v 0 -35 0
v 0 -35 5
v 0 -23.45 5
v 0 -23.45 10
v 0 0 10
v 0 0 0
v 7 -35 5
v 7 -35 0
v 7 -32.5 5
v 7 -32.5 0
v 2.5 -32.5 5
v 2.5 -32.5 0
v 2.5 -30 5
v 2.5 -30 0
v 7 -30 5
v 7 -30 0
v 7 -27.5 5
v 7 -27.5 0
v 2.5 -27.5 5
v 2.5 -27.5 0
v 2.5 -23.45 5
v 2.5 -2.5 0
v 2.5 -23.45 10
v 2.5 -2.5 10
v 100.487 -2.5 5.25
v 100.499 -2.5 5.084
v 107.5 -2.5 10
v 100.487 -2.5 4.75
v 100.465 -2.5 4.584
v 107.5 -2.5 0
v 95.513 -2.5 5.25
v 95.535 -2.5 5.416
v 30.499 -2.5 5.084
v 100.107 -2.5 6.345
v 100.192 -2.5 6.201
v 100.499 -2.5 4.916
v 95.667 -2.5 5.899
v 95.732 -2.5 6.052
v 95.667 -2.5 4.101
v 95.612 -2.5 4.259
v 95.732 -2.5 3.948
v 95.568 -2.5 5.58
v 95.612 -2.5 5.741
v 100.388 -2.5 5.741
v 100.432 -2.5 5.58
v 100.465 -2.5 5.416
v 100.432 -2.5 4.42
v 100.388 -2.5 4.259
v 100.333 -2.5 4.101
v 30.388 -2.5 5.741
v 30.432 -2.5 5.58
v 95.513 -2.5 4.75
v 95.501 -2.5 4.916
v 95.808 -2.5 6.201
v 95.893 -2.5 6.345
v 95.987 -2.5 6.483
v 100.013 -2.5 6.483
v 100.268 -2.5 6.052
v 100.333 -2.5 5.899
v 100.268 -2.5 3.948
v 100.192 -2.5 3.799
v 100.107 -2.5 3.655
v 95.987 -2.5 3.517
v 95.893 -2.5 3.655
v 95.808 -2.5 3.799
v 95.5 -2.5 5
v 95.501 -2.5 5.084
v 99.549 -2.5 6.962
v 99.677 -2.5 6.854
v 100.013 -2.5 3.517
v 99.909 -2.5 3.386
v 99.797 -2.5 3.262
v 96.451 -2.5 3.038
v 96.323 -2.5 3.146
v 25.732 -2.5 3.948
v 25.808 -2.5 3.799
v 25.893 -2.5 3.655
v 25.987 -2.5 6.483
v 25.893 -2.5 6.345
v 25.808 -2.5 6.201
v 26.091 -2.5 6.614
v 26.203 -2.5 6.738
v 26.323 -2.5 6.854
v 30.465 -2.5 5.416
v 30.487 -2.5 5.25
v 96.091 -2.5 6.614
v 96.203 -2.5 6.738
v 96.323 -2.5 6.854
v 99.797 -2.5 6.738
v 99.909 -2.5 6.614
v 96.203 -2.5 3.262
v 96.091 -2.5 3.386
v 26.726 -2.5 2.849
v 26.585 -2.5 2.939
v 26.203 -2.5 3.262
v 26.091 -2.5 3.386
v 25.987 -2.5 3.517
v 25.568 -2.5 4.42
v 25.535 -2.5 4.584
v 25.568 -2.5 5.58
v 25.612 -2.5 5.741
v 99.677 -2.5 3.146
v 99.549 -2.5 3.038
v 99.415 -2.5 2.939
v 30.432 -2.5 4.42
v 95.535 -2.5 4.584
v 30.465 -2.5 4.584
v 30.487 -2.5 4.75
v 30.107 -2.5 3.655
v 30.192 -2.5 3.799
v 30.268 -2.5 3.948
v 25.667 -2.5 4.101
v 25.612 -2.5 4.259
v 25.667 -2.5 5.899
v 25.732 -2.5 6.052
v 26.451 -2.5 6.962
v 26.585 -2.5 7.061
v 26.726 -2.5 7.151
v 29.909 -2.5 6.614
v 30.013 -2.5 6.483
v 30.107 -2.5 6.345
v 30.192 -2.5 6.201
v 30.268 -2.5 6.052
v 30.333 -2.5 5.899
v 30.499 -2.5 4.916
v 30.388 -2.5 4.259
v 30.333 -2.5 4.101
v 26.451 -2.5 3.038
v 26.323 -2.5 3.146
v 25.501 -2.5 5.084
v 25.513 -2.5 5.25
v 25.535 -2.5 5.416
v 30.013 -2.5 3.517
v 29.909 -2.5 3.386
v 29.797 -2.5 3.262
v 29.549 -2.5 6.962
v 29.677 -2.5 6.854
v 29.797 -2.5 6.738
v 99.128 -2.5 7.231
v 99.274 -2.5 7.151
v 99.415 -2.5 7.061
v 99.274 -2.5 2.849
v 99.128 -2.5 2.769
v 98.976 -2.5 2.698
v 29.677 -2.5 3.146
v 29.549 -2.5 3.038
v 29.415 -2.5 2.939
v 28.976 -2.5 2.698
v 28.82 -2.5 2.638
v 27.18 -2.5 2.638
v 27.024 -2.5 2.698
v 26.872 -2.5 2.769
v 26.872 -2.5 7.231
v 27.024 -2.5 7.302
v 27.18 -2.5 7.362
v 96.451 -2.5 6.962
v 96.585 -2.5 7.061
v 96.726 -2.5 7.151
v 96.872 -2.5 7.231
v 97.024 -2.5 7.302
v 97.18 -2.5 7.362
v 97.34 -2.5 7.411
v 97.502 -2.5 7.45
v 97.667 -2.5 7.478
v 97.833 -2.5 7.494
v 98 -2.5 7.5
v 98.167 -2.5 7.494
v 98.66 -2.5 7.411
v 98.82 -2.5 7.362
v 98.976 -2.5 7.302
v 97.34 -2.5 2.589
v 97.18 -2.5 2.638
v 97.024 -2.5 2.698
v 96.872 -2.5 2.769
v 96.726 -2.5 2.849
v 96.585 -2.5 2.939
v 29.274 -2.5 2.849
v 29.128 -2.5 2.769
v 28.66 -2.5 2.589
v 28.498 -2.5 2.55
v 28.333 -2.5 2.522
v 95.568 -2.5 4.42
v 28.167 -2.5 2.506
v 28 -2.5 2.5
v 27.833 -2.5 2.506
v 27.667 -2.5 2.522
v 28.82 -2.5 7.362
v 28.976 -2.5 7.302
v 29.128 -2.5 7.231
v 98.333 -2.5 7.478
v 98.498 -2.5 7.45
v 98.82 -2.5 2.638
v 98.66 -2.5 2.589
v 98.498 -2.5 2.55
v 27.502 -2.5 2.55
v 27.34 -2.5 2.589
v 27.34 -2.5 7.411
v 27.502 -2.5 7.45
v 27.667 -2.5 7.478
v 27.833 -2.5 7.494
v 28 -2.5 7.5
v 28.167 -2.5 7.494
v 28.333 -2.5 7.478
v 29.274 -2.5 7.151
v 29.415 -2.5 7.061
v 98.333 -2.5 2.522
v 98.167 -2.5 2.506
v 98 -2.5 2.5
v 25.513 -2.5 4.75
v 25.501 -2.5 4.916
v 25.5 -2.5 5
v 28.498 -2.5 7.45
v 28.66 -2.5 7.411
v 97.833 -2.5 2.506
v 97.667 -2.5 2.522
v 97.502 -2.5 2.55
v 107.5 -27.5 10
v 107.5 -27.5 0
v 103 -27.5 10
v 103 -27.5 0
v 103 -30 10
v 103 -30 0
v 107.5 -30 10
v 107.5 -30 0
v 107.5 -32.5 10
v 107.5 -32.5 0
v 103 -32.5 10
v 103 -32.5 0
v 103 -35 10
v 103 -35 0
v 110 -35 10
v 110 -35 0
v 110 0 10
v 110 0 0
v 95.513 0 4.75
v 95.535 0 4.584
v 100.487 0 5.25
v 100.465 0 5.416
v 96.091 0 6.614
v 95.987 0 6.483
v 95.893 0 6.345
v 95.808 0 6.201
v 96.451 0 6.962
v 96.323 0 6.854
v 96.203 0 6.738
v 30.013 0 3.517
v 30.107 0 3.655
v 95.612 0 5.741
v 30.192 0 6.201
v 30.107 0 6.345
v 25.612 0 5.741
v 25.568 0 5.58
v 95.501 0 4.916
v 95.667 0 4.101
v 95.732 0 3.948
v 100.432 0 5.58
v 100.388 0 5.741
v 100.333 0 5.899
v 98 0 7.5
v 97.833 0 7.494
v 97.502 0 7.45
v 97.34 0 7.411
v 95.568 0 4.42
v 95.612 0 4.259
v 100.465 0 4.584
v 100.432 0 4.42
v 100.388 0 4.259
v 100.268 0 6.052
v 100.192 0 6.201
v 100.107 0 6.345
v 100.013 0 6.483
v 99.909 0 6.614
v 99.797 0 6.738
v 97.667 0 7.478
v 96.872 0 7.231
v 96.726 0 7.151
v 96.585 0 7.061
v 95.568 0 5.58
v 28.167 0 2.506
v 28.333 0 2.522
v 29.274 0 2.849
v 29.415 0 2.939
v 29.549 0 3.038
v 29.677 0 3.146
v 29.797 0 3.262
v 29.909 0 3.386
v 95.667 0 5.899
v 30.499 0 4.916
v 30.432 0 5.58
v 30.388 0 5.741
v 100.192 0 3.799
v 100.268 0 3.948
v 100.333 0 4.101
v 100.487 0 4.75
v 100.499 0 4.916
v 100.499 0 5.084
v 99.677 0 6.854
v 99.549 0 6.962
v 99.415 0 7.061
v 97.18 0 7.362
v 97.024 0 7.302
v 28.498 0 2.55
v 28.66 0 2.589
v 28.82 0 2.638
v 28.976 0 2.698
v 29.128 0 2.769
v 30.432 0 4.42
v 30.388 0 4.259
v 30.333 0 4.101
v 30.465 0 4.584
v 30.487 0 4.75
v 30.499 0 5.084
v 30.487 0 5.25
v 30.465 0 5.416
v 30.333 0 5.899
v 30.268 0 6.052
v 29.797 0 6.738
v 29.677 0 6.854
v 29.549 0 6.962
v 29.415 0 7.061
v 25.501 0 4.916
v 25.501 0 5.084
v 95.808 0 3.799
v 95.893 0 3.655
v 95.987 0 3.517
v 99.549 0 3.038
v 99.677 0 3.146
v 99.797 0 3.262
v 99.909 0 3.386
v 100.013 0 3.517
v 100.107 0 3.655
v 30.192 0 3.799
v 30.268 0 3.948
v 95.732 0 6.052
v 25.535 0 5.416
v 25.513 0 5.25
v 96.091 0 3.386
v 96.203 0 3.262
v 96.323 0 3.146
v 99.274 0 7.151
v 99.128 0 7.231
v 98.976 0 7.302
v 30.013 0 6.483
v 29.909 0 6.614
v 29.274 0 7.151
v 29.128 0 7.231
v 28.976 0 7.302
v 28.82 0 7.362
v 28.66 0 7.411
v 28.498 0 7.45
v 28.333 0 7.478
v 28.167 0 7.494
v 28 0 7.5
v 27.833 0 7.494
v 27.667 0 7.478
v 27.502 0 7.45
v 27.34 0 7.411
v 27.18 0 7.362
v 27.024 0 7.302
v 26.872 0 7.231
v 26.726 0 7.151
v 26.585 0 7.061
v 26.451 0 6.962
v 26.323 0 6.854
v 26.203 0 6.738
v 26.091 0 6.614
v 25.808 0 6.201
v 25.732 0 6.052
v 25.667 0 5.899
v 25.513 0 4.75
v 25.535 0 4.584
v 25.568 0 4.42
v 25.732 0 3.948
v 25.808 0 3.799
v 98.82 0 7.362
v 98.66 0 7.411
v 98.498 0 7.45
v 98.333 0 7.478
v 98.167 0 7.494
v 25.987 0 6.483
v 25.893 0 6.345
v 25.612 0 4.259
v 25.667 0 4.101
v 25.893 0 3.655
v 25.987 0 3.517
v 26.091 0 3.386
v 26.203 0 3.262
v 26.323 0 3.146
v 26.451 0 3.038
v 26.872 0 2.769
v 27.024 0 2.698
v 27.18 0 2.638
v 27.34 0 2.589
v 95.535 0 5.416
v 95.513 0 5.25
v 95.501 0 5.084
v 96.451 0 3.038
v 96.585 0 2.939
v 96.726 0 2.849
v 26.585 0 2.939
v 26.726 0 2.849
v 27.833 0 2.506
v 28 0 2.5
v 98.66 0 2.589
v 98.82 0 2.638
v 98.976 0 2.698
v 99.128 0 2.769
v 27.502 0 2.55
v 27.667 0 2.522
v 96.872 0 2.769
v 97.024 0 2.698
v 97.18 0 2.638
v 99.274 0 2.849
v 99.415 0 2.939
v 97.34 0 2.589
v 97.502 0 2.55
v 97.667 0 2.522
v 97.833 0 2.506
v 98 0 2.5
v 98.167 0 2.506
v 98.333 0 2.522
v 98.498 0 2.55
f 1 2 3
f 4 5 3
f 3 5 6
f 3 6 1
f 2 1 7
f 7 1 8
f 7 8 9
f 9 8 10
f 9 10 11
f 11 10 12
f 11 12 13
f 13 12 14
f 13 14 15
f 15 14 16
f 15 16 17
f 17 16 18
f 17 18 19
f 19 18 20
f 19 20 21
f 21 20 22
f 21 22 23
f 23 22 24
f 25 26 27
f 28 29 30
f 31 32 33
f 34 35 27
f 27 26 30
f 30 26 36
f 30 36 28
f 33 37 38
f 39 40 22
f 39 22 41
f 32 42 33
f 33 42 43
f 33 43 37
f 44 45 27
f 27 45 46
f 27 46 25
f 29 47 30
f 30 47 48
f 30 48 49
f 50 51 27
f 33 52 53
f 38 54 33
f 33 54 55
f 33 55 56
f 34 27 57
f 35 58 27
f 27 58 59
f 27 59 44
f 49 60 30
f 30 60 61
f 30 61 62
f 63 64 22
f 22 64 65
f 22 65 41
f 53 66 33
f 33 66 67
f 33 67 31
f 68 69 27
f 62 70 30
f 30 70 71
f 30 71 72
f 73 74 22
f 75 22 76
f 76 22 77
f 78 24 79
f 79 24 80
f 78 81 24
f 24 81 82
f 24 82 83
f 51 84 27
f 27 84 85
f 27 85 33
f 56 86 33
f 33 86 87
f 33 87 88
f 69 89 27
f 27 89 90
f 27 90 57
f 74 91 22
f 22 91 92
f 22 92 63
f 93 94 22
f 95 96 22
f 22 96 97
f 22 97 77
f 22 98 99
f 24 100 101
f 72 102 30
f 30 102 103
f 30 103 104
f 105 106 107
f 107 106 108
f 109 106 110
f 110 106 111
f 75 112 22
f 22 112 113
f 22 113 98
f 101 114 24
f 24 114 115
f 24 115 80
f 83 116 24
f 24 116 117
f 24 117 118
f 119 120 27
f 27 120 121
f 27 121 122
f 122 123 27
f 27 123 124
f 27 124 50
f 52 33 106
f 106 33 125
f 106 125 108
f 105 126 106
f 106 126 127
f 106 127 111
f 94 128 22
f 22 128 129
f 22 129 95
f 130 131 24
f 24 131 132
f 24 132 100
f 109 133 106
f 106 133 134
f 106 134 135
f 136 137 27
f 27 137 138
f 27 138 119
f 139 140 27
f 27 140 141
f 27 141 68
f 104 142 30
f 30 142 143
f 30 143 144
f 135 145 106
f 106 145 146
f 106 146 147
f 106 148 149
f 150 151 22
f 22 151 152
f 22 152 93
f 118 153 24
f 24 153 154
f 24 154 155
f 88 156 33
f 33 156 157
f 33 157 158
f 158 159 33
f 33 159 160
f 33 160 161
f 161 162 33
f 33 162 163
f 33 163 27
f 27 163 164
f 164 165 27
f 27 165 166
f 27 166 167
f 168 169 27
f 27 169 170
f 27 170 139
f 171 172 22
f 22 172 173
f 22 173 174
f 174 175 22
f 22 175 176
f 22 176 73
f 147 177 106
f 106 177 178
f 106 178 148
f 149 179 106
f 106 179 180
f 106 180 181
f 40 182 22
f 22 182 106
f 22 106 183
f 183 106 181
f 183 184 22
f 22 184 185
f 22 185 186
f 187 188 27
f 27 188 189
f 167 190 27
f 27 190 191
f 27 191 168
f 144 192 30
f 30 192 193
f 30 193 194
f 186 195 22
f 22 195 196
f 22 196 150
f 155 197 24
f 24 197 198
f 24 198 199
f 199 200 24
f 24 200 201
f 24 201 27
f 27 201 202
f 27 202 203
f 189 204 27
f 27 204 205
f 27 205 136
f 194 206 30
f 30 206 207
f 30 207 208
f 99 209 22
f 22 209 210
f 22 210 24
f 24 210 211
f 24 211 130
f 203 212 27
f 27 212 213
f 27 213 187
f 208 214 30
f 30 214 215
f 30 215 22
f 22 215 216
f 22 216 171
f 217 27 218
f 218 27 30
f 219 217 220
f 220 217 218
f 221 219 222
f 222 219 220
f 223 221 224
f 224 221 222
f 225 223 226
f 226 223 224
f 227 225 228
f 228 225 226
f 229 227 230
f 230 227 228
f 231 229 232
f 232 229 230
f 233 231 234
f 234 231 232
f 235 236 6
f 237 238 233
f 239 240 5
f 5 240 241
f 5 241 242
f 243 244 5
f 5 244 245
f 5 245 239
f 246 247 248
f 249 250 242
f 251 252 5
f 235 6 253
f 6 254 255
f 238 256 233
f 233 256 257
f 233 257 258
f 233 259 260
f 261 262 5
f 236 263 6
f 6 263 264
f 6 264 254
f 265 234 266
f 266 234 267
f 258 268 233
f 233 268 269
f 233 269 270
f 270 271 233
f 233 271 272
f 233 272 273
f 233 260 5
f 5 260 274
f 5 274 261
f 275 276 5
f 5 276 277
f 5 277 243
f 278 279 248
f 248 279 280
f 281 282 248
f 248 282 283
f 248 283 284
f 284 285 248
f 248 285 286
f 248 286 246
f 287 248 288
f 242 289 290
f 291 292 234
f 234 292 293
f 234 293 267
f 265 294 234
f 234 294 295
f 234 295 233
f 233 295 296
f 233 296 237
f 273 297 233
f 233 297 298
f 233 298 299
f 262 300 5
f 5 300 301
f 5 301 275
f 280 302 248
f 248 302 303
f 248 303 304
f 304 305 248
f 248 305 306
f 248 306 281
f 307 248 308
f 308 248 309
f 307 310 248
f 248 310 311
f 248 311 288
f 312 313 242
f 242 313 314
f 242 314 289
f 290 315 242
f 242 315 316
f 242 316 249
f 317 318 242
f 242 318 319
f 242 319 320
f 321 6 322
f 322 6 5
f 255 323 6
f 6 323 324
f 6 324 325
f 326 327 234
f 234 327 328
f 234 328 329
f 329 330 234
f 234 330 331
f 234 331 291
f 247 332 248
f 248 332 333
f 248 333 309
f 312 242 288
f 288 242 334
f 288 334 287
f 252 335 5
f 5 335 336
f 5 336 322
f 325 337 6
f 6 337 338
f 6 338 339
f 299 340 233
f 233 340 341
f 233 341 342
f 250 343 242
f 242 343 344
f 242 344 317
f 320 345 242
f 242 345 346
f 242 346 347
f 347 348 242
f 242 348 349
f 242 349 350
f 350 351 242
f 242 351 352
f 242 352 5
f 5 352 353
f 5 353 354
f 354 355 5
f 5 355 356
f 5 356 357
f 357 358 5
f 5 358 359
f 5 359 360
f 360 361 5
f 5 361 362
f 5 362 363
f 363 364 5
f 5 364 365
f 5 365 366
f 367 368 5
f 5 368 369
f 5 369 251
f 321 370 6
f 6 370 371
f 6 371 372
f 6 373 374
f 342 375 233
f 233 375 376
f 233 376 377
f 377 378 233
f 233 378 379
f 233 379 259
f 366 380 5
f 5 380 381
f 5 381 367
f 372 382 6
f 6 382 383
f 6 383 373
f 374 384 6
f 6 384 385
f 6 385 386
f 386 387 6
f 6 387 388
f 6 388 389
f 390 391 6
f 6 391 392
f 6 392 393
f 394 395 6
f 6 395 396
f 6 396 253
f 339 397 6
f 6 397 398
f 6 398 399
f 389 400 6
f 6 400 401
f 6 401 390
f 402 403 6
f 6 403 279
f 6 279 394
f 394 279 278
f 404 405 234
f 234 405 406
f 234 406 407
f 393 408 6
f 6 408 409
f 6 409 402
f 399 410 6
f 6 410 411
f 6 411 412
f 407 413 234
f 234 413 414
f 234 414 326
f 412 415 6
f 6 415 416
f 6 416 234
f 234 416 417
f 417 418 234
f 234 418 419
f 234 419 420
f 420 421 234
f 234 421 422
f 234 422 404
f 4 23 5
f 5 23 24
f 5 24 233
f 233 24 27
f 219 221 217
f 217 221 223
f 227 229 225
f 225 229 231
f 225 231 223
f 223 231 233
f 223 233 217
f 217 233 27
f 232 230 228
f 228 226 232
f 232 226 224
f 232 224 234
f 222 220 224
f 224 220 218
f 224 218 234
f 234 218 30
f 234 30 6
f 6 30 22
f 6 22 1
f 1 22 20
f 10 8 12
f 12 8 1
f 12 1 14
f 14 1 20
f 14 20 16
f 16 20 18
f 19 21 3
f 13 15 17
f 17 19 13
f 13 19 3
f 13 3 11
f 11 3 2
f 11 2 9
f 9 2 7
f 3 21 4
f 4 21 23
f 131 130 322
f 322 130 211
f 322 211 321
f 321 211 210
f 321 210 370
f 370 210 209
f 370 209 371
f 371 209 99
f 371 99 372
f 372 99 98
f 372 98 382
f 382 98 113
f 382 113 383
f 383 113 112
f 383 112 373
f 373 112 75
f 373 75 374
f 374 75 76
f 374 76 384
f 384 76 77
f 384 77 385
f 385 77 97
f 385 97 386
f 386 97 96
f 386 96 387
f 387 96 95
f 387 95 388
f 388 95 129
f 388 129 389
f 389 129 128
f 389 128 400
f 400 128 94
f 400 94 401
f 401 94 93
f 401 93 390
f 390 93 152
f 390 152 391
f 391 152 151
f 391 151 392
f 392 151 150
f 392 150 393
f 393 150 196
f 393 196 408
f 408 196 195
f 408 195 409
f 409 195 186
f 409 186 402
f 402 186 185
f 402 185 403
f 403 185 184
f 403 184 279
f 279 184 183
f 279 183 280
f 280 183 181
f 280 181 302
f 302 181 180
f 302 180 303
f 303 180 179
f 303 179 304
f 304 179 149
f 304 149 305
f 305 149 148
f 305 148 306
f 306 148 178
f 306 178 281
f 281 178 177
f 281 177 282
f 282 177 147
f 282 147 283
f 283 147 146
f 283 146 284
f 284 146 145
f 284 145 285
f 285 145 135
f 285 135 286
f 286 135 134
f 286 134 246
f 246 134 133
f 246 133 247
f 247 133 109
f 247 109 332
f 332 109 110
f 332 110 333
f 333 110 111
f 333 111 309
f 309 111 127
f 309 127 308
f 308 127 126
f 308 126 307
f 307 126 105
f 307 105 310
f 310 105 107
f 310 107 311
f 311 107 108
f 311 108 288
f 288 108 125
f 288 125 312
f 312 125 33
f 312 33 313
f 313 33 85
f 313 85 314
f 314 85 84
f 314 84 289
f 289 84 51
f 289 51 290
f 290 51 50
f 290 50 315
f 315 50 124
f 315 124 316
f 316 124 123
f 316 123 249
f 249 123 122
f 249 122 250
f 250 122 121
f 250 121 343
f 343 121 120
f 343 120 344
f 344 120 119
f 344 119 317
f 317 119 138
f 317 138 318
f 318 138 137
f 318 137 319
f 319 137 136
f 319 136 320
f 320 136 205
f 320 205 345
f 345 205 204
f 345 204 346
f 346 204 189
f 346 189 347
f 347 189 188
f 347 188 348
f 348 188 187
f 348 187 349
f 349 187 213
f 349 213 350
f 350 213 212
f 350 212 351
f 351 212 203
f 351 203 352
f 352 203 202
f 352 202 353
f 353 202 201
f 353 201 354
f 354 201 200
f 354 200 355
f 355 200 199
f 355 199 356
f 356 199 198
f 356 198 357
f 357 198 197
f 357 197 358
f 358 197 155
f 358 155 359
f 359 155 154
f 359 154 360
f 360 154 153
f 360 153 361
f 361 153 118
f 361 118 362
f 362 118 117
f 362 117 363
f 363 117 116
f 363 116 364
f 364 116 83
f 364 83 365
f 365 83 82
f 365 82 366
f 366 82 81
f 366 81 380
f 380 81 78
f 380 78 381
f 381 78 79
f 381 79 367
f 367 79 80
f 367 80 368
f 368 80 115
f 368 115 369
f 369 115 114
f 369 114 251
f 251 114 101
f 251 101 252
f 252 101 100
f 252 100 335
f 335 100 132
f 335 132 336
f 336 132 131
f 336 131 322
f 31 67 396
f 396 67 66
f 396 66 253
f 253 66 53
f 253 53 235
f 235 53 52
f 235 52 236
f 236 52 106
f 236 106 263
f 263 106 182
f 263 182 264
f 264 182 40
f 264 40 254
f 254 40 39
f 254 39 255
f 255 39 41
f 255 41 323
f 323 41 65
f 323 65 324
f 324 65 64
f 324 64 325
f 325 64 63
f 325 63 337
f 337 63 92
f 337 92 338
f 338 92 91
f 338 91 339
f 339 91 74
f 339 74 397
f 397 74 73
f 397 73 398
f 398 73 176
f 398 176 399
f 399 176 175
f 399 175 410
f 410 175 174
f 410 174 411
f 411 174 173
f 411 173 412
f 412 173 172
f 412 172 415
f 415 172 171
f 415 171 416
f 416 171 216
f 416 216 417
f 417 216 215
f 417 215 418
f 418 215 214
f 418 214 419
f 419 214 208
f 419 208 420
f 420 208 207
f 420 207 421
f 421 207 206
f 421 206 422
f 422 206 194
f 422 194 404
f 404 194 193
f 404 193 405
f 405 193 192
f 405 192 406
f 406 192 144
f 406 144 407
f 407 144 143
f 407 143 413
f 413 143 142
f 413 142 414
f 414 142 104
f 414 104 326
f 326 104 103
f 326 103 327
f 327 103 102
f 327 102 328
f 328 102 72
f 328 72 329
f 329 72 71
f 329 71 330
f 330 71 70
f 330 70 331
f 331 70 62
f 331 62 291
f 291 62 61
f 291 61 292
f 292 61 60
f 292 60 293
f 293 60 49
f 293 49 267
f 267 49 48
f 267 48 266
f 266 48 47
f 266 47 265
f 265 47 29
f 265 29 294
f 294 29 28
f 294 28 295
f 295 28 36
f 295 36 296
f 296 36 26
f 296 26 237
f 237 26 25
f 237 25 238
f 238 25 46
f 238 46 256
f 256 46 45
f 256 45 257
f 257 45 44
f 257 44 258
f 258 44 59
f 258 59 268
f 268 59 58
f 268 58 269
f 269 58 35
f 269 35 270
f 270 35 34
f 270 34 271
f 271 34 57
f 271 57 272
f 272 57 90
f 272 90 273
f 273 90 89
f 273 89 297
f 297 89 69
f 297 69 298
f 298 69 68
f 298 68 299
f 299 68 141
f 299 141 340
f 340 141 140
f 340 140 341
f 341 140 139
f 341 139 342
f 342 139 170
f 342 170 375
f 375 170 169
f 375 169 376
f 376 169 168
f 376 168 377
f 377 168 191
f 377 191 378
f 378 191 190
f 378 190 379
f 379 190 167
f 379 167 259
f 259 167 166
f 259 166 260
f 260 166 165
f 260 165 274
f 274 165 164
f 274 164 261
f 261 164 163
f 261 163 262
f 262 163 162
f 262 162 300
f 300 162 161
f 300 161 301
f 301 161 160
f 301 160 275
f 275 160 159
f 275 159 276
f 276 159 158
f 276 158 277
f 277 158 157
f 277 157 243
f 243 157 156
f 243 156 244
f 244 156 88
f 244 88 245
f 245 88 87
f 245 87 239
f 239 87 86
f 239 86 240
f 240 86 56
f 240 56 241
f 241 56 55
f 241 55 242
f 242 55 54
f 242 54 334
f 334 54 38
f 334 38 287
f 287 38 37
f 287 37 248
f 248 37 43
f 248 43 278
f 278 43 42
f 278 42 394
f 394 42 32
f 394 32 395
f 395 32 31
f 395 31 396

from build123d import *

# Parameters (mm, degrees)
BOSS_EXTRUDE1_DEPTH = 10
SKETCH2_W           = 7.883034156
SKETCH2_H           = 11.550106774
CUT_EXTRUDE1_DEPTH  = 5
SKETCH3_R           = 2.5
CUT_EXTRUDE2_DEPTH  = 3


with BuildPart() as part:
    # Sketch1 → Boss-Extrude1 (new body)
    with BuildSketch(Plane.XY):
        Polygon((2.5, -30), (2.5, -32.5), (7, -32.5), (7, -35), (0, -35), (0, -32.5), (0, -2.5), (0, 0), (110, 0), (110, -2.5), (110, -32.5), (110, -35), (103, -35), (103, -32.5), (107.5, -32.5), (107.5, -30), (103, -30), (103, -27.5), (107.5, -27.5), (107.5, -2.5), (2.5, -2.5), (2.5, -27.5), (7, -27.5), (7, -30), align=None)
    extrude(amount=BOSS_EXTRUDE1_DEPTH)

    # Sketch2 → Cut-Extrude1 (cut)
    with BuildSketch(Plane.XY.offset(10)):
        with Locations((3.941517078, -29.224946613)):
            Rectangle(SKETCH2_W, SKETCH2_H)
    extrude(amount=-CUT_EXTRUDE1_DEPTH, mode=Mode.SUBTRACT)

    # Sketch3 → Cut-Extrude2 (cut)
    with BuildSketch(Plane(origin=(0, 0, 0), x_dir=(1, 0, 0), z_dir=(0, 1, 0))):
        with Locations((98, -5)):
            Circle(SKETCH3_R)
        with Locations((28, -5)):
            Circle(SKETCH3_R)
    extrude(amount=-CUT_EXTRUDE2_DEPTH, mode=Mode.SUBTRACT)


solid = part.part
